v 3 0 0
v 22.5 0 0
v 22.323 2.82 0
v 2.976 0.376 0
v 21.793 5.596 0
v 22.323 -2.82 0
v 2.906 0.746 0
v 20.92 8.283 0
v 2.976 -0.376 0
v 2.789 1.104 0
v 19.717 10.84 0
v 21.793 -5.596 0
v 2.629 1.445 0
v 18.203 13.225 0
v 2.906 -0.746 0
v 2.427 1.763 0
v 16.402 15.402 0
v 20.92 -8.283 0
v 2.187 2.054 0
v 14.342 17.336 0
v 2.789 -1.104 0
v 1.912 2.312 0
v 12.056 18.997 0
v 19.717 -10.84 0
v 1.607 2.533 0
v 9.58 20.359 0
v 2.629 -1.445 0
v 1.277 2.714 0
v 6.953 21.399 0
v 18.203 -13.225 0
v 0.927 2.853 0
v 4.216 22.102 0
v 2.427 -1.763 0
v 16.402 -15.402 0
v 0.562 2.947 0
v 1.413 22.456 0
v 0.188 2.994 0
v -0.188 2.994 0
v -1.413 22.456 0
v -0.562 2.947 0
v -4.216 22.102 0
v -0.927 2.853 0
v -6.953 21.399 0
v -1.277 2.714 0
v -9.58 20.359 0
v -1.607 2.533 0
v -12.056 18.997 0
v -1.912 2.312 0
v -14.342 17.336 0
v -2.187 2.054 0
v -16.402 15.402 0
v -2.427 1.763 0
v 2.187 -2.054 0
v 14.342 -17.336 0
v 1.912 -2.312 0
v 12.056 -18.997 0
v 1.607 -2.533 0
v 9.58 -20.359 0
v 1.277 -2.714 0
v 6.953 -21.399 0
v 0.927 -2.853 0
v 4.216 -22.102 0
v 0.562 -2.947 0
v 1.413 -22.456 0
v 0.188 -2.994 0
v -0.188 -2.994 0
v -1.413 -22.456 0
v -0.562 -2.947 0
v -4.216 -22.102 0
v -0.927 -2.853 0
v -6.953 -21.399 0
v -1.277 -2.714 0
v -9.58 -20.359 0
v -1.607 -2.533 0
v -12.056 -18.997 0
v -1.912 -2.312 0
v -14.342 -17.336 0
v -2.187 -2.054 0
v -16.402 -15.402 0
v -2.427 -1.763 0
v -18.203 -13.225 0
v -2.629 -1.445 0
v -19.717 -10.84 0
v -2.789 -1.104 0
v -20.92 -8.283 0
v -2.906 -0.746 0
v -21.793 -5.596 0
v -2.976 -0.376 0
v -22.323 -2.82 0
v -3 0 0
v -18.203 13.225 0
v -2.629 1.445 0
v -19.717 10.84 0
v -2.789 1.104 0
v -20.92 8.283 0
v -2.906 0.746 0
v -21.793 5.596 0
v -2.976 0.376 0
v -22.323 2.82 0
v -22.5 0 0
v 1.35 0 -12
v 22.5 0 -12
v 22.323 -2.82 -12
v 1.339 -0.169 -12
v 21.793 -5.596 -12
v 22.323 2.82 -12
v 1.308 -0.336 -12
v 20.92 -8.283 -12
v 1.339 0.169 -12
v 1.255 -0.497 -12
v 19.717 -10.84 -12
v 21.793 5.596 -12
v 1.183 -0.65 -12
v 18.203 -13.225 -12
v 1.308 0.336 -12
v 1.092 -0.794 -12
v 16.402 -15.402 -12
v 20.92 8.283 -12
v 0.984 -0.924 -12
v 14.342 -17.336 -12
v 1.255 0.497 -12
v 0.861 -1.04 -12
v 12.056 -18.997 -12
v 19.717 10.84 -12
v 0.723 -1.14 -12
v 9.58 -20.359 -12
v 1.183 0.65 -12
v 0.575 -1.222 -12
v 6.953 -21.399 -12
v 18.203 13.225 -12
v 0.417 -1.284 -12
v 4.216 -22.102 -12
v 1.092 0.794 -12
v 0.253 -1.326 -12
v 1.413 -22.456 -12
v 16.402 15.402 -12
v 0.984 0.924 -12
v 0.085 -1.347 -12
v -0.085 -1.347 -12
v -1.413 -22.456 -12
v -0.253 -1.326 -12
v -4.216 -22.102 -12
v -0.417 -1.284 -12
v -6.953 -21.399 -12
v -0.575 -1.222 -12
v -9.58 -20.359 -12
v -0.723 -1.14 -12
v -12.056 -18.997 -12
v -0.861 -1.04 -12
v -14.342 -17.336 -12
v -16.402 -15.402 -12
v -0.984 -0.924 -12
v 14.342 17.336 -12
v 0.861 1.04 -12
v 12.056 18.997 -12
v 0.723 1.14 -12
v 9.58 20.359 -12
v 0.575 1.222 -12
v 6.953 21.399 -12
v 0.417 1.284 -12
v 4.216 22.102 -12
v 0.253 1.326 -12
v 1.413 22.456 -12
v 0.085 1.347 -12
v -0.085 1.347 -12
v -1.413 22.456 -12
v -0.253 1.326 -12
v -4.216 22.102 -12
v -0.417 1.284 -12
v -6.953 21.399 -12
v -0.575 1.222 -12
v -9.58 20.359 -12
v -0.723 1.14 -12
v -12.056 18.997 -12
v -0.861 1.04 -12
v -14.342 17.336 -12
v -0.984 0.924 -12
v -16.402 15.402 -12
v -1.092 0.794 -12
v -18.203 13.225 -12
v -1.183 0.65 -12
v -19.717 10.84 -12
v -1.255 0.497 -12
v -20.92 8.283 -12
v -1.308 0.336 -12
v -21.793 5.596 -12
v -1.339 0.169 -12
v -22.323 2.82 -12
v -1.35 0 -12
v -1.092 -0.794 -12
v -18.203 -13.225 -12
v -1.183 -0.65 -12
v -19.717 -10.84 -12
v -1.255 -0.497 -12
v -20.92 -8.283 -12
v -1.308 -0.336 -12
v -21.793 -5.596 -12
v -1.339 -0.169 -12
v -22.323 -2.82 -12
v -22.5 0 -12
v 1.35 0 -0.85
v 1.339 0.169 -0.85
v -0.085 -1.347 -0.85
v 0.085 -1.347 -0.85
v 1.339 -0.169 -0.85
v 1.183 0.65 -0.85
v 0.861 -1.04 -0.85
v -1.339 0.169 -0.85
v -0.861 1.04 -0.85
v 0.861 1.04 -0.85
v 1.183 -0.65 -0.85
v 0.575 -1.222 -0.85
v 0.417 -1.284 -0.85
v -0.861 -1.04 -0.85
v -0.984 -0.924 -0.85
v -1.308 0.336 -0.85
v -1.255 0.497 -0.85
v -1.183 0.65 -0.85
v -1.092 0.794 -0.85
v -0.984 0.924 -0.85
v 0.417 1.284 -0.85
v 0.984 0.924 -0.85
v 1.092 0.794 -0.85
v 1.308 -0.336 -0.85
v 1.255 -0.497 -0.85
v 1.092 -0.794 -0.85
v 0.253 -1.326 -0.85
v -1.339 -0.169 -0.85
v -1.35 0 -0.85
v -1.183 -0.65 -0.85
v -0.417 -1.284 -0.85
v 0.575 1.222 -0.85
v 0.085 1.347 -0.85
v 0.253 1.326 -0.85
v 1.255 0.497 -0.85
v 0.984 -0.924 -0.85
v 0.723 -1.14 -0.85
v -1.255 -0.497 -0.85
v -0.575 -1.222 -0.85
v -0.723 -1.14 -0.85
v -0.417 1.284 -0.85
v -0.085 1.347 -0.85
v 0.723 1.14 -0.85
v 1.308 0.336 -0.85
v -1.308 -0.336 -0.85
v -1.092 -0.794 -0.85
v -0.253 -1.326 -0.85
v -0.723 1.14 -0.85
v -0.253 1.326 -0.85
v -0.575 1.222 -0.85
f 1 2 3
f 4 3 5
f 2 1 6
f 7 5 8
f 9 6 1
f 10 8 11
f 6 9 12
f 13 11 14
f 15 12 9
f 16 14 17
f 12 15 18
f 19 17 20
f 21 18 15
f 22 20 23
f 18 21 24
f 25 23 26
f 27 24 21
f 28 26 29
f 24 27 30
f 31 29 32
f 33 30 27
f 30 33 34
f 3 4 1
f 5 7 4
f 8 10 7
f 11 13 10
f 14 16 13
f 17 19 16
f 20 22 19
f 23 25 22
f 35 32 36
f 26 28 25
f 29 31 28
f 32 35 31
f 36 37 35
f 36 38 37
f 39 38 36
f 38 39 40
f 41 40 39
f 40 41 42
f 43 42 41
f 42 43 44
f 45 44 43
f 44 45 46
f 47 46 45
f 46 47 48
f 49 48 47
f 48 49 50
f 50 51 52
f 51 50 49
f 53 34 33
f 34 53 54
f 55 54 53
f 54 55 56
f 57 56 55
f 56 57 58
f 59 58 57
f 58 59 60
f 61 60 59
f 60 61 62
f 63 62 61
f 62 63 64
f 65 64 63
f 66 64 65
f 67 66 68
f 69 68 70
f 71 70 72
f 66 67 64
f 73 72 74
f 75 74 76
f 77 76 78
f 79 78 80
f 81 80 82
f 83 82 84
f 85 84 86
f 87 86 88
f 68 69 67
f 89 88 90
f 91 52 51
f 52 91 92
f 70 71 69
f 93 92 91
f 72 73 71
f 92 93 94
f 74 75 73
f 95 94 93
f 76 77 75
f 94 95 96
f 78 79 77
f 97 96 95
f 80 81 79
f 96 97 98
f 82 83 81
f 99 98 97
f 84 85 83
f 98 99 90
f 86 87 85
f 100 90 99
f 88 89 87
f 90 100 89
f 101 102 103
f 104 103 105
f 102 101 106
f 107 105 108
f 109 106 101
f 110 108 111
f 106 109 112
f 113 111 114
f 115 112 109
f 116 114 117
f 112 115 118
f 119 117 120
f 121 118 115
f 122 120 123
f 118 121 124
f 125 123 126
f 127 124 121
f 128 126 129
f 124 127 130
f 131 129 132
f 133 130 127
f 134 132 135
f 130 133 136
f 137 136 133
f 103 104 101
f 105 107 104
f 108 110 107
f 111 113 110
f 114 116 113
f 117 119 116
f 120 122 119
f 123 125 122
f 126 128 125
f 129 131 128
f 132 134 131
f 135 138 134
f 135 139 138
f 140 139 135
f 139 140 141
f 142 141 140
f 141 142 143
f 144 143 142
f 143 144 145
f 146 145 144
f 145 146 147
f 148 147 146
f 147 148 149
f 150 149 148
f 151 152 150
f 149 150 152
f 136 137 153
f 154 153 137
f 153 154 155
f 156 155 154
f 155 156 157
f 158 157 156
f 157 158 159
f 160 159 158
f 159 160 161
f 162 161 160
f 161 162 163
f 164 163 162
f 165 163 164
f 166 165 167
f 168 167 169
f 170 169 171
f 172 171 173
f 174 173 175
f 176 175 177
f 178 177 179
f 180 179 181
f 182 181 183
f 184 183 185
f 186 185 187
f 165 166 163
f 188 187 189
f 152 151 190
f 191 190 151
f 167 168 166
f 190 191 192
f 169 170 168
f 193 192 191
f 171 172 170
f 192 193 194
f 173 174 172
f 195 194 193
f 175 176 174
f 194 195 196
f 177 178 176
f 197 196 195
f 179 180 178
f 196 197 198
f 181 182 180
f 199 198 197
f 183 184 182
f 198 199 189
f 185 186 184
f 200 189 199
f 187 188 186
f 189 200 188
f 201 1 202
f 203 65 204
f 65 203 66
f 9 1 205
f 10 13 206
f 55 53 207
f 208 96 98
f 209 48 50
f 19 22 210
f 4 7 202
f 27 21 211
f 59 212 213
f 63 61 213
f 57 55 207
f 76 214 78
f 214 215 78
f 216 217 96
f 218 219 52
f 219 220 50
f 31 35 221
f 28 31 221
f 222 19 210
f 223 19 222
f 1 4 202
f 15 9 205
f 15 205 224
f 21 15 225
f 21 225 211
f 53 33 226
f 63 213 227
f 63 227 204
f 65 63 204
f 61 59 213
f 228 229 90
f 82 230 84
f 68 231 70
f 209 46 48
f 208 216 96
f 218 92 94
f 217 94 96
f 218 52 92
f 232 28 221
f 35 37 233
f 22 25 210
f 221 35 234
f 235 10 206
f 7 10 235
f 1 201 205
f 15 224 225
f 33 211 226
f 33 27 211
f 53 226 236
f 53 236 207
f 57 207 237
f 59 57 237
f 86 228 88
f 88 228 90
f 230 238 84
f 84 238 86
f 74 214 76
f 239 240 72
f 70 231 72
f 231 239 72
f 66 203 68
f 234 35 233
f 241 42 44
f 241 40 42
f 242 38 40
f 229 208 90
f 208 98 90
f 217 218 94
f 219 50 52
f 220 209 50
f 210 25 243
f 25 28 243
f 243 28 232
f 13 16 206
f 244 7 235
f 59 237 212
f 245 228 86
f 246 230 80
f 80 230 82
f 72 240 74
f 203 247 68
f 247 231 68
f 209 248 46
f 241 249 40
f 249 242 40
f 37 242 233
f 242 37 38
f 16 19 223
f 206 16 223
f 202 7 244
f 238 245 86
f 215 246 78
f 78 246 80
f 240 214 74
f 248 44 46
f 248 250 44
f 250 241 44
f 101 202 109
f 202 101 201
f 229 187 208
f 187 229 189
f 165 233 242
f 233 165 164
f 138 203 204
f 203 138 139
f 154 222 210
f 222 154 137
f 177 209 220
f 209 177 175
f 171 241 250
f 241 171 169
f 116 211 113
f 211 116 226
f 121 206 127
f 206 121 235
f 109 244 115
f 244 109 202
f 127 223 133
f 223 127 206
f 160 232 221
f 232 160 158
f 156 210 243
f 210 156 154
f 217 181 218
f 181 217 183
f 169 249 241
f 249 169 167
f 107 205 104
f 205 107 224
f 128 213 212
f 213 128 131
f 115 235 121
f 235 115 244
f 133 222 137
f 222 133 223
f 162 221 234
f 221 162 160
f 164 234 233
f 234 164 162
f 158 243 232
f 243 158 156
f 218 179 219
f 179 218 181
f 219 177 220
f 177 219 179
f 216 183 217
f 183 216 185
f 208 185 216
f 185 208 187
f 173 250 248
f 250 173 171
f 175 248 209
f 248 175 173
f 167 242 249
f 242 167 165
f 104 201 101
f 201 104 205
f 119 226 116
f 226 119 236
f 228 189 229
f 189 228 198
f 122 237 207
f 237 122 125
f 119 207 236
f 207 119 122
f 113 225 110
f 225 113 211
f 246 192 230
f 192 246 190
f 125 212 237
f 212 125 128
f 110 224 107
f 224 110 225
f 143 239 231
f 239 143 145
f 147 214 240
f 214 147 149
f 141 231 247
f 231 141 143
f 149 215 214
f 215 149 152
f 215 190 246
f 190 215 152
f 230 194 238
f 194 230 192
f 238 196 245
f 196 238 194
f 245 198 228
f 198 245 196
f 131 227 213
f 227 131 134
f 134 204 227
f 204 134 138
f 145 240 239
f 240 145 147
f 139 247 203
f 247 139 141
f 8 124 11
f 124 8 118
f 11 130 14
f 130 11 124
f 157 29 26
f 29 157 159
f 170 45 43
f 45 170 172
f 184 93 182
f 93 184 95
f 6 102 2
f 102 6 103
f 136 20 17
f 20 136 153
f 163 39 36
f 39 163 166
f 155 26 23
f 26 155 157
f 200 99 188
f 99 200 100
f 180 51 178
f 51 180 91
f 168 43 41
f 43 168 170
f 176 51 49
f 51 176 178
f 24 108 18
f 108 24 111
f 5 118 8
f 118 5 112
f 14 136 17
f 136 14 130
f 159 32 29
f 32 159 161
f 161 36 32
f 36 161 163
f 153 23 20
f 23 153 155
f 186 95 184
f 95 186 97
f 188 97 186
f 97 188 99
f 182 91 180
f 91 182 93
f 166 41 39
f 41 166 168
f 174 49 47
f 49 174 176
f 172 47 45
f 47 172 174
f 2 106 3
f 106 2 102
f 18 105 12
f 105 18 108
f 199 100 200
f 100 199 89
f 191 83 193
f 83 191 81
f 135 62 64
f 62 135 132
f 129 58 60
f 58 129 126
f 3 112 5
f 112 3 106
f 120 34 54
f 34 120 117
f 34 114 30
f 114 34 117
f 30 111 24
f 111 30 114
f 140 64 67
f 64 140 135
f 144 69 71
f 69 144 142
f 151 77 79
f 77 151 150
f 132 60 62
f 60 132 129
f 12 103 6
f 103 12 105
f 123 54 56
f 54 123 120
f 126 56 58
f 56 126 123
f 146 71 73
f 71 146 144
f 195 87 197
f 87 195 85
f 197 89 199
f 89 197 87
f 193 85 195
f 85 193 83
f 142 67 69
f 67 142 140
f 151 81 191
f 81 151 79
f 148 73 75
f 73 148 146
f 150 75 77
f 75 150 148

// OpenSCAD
$fn = 50;


difference() {
	union() {
		translate(v = [0, 0, -12.0000000000]) {
			cylinder(h = 12, r = 22.5000000000);
		}
	}
	union() {
		translate(v = [0, 0, 0]) {
			rotate(a = [0, 0, 0]) {
				difference() {
					union() {
						translate(v = [0, 0, -12.0000000000]) {
							cylinder(h = 12, r = 1.0000000000);
						}
						translate(v = [0, 0, -0.8500000000]) {
							cylinder(h = 0.8500000000, r1 = 1.3500000000, r2 = 3.0000000000);
						}
						translate(v = [0, 0, -12.0000000000]) {
							cylinder(h = 12, r = 1.3500000000);
						}
						translate(v = [0, 0, -12.0000000000]) {
							cylinder(h = 12, r = 1.0000000000);
						}
					}
					union();
				}
			}
		}
	}
}
